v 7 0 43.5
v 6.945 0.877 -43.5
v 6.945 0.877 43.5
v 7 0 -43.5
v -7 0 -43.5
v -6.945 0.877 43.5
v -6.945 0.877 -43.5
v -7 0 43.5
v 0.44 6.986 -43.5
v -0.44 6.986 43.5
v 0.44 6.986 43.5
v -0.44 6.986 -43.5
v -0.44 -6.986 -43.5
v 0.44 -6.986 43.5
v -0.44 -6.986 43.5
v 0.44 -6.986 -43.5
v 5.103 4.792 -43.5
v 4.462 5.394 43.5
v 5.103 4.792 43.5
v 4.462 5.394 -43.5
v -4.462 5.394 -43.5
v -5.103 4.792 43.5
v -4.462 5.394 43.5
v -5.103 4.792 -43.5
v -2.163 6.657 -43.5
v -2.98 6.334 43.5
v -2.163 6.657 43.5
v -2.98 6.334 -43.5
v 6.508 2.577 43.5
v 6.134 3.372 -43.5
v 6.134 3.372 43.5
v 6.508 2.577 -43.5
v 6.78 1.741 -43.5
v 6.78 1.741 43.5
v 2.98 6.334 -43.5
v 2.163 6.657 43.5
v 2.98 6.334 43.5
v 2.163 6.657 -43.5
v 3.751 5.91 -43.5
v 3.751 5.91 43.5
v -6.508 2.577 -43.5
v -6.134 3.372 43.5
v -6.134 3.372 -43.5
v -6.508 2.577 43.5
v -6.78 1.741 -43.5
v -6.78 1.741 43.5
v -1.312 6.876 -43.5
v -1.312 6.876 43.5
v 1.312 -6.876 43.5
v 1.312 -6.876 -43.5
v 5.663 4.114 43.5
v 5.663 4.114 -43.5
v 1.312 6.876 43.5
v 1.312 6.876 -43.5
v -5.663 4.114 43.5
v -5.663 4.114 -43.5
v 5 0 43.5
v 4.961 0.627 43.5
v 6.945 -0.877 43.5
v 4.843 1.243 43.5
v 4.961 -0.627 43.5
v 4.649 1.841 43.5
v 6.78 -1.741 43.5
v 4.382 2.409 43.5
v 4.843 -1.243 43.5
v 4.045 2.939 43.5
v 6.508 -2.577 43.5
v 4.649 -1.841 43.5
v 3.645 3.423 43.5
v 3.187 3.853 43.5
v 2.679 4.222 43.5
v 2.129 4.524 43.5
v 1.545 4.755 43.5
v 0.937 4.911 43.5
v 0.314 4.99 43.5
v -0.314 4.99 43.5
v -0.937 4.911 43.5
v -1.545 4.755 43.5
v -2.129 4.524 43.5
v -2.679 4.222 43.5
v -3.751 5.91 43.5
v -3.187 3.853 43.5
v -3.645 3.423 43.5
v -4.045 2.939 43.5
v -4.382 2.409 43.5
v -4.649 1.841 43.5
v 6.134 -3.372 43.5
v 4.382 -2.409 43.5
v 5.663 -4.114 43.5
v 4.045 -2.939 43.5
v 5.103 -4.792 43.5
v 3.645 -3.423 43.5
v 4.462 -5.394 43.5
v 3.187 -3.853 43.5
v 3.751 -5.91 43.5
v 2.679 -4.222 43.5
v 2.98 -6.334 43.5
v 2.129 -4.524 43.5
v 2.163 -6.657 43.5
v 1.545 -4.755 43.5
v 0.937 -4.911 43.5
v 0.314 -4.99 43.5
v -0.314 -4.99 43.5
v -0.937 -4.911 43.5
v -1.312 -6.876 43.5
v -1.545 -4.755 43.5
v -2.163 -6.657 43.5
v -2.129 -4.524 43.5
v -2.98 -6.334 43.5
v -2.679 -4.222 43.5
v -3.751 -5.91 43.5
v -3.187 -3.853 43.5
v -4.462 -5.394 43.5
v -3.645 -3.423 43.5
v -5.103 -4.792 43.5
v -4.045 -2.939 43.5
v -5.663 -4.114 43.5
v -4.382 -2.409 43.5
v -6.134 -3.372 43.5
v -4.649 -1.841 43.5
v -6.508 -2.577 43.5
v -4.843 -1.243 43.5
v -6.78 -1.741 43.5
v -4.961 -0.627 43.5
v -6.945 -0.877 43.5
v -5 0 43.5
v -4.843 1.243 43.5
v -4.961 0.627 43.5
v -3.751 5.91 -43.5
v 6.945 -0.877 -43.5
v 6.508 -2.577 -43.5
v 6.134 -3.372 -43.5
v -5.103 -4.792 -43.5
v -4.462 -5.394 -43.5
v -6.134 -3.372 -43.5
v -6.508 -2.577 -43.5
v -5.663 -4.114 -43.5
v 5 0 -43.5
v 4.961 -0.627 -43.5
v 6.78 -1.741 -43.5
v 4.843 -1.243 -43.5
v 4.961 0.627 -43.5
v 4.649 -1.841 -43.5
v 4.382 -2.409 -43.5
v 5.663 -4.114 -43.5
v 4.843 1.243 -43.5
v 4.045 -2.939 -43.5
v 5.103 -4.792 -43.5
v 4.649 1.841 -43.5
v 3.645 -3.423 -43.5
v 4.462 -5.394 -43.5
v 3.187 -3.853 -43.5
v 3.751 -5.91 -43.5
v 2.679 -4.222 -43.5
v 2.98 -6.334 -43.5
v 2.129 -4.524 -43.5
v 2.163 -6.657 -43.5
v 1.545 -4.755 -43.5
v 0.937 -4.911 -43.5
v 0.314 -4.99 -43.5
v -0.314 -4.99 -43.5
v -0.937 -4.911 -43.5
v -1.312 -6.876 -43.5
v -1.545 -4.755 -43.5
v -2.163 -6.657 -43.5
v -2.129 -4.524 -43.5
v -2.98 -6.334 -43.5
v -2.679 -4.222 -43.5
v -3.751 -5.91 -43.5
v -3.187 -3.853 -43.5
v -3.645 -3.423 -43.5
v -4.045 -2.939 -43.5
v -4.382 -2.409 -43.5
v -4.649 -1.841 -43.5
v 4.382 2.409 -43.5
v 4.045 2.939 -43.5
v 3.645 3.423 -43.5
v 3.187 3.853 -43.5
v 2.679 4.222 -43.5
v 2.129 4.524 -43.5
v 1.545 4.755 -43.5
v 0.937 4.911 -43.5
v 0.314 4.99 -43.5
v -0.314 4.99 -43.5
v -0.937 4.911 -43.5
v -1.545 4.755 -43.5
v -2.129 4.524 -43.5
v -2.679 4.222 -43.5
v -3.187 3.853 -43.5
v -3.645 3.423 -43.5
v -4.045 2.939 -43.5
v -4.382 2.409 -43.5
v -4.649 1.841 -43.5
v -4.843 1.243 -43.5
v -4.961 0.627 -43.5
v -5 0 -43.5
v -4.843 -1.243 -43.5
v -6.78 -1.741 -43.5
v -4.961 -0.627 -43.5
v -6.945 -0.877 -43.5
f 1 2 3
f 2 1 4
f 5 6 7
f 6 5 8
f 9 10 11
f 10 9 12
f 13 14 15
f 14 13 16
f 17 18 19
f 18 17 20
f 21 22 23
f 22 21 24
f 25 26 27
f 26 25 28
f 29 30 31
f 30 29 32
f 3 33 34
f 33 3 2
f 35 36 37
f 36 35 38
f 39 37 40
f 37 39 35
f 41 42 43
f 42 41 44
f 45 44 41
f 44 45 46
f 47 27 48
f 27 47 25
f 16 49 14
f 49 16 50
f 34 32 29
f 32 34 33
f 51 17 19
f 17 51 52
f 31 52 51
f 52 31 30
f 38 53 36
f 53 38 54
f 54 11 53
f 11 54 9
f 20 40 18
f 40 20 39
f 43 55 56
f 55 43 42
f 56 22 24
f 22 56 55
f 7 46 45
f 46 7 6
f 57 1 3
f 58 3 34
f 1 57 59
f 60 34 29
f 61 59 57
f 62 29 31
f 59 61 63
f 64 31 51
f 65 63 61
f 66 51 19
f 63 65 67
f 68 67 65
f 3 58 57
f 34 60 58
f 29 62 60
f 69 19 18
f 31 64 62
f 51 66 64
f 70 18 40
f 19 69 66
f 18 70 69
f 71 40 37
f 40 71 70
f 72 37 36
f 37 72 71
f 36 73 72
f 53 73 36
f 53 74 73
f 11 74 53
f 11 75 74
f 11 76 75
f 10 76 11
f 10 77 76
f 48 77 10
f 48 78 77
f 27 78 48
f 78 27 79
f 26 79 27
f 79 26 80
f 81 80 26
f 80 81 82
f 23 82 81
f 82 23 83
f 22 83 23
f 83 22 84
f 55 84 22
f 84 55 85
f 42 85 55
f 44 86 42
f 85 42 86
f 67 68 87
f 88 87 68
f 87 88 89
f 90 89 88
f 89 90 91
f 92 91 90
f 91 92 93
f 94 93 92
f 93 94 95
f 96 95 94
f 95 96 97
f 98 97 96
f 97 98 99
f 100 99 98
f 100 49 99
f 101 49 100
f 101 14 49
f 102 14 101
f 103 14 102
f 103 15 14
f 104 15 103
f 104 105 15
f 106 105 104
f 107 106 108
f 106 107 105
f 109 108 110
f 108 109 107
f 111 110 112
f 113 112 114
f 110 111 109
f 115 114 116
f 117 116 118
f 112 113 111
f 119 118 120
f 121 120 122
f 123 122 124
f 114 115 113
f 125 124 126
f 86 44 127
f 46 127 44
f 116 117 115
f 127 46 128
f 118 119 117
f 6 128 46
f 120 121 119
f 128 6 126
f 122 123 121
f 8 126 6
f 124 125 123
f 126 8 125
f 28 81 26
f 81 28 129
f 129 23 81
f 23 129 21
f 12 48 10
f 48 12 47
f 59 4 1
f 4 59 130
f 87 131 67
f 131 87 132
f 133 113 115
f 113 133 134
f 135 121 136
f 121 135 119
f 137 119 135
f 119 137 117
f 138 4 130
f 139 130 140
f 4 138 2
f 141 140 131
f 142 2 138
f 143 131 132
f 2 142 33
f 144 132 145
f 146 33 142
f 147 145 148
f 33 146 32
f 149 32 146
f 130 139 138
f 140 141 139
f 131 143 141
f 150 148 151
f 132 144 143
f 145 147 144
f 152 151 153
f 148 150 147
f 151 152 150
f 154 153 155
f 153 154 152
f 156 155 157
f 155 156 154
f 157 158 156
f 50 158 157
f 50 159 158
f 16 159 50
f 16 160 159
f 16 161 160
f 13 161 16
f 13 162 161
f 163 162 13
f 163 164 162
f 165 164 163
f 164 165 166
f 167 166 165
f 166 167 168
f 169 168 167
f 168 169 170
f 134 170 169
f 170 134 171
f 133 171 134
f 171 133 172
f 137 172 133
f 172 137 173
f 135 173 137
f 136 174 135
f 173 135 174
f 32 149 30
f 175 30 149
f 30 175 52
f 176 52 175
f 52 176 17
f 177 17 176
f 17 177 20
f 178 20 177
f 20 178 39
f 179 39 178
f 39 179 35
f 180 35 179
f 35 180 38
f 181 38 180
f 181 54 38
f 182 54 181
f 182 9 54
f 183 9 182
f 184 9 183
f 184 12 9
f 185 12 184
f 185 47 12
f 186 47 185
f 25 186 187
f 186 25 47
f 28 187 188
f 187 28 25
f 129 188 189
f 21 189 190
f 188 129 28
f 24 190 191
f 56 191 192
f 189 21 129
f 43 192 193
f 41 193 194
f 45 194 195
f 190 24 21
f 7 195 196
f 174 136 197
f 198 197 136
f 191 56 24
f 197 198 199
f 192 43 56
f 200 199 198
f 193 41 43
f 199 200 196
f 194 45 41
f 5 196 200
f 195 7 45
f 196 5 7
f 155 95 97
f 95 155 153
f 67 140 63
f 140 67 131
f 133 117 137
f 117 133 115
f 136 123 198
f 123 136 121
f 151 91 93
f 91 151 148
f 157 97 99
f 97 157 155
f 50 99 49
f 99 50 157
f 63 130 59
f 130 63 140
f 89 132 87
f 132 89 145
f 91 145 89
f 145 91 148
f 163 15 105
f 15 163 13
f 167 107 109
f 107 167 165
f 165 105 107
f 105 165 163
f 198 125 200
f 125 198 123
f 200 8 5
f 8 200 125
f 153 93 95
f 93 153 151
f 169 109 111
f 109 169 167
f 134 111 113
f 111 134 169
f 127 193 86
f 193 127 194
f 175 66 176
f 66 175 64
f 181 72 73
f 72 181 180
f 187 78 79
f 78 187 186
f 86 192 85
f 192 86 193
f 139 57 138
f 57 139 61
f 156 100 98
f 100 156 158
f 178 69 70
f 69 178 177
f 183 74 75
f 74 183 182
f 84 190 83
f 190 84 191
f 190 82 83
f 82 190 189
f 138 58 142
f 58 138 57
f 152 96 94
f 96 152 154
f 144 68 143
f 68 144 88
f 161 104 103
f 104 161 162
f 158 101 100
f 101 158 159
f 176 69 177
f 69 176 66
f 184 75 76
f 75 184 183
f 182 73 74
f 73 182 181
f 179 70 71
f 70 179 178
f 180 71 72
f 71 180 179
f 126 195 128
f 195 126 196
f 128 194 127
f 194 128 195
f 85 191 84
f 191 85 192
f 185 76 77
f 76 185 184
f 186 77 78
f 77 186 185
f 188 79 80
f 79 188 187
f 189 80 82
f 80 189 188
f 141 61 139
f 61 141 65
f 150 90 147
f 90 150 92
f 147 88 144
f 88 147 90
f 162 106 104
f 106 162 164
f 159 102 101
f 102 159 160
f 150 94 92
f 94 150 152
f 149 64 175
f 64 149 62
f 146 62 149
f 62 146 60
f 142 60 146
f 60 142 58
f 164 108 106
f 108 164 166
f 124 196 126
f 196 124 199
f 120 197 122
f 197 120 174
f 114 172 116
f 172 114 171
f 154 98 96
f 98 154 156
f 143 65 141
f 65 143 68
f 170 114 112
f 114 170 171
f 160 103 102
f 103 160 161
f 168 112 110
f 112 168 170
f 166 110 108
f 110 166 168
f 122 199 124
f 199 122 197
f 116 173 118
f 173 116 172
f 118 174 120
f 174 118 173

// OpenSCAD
$fn = 50;


difference() {
	union() {
		translate(v = [0, 0, -43.5000000000]) {
			cylinder(h = 87, r = 7.0000000000);
		}
	}
	union() {
		translate(v = [0, 0, -100.0000000000]) {
			cylinder(h = 200, r = 5);
		}
	}
}
